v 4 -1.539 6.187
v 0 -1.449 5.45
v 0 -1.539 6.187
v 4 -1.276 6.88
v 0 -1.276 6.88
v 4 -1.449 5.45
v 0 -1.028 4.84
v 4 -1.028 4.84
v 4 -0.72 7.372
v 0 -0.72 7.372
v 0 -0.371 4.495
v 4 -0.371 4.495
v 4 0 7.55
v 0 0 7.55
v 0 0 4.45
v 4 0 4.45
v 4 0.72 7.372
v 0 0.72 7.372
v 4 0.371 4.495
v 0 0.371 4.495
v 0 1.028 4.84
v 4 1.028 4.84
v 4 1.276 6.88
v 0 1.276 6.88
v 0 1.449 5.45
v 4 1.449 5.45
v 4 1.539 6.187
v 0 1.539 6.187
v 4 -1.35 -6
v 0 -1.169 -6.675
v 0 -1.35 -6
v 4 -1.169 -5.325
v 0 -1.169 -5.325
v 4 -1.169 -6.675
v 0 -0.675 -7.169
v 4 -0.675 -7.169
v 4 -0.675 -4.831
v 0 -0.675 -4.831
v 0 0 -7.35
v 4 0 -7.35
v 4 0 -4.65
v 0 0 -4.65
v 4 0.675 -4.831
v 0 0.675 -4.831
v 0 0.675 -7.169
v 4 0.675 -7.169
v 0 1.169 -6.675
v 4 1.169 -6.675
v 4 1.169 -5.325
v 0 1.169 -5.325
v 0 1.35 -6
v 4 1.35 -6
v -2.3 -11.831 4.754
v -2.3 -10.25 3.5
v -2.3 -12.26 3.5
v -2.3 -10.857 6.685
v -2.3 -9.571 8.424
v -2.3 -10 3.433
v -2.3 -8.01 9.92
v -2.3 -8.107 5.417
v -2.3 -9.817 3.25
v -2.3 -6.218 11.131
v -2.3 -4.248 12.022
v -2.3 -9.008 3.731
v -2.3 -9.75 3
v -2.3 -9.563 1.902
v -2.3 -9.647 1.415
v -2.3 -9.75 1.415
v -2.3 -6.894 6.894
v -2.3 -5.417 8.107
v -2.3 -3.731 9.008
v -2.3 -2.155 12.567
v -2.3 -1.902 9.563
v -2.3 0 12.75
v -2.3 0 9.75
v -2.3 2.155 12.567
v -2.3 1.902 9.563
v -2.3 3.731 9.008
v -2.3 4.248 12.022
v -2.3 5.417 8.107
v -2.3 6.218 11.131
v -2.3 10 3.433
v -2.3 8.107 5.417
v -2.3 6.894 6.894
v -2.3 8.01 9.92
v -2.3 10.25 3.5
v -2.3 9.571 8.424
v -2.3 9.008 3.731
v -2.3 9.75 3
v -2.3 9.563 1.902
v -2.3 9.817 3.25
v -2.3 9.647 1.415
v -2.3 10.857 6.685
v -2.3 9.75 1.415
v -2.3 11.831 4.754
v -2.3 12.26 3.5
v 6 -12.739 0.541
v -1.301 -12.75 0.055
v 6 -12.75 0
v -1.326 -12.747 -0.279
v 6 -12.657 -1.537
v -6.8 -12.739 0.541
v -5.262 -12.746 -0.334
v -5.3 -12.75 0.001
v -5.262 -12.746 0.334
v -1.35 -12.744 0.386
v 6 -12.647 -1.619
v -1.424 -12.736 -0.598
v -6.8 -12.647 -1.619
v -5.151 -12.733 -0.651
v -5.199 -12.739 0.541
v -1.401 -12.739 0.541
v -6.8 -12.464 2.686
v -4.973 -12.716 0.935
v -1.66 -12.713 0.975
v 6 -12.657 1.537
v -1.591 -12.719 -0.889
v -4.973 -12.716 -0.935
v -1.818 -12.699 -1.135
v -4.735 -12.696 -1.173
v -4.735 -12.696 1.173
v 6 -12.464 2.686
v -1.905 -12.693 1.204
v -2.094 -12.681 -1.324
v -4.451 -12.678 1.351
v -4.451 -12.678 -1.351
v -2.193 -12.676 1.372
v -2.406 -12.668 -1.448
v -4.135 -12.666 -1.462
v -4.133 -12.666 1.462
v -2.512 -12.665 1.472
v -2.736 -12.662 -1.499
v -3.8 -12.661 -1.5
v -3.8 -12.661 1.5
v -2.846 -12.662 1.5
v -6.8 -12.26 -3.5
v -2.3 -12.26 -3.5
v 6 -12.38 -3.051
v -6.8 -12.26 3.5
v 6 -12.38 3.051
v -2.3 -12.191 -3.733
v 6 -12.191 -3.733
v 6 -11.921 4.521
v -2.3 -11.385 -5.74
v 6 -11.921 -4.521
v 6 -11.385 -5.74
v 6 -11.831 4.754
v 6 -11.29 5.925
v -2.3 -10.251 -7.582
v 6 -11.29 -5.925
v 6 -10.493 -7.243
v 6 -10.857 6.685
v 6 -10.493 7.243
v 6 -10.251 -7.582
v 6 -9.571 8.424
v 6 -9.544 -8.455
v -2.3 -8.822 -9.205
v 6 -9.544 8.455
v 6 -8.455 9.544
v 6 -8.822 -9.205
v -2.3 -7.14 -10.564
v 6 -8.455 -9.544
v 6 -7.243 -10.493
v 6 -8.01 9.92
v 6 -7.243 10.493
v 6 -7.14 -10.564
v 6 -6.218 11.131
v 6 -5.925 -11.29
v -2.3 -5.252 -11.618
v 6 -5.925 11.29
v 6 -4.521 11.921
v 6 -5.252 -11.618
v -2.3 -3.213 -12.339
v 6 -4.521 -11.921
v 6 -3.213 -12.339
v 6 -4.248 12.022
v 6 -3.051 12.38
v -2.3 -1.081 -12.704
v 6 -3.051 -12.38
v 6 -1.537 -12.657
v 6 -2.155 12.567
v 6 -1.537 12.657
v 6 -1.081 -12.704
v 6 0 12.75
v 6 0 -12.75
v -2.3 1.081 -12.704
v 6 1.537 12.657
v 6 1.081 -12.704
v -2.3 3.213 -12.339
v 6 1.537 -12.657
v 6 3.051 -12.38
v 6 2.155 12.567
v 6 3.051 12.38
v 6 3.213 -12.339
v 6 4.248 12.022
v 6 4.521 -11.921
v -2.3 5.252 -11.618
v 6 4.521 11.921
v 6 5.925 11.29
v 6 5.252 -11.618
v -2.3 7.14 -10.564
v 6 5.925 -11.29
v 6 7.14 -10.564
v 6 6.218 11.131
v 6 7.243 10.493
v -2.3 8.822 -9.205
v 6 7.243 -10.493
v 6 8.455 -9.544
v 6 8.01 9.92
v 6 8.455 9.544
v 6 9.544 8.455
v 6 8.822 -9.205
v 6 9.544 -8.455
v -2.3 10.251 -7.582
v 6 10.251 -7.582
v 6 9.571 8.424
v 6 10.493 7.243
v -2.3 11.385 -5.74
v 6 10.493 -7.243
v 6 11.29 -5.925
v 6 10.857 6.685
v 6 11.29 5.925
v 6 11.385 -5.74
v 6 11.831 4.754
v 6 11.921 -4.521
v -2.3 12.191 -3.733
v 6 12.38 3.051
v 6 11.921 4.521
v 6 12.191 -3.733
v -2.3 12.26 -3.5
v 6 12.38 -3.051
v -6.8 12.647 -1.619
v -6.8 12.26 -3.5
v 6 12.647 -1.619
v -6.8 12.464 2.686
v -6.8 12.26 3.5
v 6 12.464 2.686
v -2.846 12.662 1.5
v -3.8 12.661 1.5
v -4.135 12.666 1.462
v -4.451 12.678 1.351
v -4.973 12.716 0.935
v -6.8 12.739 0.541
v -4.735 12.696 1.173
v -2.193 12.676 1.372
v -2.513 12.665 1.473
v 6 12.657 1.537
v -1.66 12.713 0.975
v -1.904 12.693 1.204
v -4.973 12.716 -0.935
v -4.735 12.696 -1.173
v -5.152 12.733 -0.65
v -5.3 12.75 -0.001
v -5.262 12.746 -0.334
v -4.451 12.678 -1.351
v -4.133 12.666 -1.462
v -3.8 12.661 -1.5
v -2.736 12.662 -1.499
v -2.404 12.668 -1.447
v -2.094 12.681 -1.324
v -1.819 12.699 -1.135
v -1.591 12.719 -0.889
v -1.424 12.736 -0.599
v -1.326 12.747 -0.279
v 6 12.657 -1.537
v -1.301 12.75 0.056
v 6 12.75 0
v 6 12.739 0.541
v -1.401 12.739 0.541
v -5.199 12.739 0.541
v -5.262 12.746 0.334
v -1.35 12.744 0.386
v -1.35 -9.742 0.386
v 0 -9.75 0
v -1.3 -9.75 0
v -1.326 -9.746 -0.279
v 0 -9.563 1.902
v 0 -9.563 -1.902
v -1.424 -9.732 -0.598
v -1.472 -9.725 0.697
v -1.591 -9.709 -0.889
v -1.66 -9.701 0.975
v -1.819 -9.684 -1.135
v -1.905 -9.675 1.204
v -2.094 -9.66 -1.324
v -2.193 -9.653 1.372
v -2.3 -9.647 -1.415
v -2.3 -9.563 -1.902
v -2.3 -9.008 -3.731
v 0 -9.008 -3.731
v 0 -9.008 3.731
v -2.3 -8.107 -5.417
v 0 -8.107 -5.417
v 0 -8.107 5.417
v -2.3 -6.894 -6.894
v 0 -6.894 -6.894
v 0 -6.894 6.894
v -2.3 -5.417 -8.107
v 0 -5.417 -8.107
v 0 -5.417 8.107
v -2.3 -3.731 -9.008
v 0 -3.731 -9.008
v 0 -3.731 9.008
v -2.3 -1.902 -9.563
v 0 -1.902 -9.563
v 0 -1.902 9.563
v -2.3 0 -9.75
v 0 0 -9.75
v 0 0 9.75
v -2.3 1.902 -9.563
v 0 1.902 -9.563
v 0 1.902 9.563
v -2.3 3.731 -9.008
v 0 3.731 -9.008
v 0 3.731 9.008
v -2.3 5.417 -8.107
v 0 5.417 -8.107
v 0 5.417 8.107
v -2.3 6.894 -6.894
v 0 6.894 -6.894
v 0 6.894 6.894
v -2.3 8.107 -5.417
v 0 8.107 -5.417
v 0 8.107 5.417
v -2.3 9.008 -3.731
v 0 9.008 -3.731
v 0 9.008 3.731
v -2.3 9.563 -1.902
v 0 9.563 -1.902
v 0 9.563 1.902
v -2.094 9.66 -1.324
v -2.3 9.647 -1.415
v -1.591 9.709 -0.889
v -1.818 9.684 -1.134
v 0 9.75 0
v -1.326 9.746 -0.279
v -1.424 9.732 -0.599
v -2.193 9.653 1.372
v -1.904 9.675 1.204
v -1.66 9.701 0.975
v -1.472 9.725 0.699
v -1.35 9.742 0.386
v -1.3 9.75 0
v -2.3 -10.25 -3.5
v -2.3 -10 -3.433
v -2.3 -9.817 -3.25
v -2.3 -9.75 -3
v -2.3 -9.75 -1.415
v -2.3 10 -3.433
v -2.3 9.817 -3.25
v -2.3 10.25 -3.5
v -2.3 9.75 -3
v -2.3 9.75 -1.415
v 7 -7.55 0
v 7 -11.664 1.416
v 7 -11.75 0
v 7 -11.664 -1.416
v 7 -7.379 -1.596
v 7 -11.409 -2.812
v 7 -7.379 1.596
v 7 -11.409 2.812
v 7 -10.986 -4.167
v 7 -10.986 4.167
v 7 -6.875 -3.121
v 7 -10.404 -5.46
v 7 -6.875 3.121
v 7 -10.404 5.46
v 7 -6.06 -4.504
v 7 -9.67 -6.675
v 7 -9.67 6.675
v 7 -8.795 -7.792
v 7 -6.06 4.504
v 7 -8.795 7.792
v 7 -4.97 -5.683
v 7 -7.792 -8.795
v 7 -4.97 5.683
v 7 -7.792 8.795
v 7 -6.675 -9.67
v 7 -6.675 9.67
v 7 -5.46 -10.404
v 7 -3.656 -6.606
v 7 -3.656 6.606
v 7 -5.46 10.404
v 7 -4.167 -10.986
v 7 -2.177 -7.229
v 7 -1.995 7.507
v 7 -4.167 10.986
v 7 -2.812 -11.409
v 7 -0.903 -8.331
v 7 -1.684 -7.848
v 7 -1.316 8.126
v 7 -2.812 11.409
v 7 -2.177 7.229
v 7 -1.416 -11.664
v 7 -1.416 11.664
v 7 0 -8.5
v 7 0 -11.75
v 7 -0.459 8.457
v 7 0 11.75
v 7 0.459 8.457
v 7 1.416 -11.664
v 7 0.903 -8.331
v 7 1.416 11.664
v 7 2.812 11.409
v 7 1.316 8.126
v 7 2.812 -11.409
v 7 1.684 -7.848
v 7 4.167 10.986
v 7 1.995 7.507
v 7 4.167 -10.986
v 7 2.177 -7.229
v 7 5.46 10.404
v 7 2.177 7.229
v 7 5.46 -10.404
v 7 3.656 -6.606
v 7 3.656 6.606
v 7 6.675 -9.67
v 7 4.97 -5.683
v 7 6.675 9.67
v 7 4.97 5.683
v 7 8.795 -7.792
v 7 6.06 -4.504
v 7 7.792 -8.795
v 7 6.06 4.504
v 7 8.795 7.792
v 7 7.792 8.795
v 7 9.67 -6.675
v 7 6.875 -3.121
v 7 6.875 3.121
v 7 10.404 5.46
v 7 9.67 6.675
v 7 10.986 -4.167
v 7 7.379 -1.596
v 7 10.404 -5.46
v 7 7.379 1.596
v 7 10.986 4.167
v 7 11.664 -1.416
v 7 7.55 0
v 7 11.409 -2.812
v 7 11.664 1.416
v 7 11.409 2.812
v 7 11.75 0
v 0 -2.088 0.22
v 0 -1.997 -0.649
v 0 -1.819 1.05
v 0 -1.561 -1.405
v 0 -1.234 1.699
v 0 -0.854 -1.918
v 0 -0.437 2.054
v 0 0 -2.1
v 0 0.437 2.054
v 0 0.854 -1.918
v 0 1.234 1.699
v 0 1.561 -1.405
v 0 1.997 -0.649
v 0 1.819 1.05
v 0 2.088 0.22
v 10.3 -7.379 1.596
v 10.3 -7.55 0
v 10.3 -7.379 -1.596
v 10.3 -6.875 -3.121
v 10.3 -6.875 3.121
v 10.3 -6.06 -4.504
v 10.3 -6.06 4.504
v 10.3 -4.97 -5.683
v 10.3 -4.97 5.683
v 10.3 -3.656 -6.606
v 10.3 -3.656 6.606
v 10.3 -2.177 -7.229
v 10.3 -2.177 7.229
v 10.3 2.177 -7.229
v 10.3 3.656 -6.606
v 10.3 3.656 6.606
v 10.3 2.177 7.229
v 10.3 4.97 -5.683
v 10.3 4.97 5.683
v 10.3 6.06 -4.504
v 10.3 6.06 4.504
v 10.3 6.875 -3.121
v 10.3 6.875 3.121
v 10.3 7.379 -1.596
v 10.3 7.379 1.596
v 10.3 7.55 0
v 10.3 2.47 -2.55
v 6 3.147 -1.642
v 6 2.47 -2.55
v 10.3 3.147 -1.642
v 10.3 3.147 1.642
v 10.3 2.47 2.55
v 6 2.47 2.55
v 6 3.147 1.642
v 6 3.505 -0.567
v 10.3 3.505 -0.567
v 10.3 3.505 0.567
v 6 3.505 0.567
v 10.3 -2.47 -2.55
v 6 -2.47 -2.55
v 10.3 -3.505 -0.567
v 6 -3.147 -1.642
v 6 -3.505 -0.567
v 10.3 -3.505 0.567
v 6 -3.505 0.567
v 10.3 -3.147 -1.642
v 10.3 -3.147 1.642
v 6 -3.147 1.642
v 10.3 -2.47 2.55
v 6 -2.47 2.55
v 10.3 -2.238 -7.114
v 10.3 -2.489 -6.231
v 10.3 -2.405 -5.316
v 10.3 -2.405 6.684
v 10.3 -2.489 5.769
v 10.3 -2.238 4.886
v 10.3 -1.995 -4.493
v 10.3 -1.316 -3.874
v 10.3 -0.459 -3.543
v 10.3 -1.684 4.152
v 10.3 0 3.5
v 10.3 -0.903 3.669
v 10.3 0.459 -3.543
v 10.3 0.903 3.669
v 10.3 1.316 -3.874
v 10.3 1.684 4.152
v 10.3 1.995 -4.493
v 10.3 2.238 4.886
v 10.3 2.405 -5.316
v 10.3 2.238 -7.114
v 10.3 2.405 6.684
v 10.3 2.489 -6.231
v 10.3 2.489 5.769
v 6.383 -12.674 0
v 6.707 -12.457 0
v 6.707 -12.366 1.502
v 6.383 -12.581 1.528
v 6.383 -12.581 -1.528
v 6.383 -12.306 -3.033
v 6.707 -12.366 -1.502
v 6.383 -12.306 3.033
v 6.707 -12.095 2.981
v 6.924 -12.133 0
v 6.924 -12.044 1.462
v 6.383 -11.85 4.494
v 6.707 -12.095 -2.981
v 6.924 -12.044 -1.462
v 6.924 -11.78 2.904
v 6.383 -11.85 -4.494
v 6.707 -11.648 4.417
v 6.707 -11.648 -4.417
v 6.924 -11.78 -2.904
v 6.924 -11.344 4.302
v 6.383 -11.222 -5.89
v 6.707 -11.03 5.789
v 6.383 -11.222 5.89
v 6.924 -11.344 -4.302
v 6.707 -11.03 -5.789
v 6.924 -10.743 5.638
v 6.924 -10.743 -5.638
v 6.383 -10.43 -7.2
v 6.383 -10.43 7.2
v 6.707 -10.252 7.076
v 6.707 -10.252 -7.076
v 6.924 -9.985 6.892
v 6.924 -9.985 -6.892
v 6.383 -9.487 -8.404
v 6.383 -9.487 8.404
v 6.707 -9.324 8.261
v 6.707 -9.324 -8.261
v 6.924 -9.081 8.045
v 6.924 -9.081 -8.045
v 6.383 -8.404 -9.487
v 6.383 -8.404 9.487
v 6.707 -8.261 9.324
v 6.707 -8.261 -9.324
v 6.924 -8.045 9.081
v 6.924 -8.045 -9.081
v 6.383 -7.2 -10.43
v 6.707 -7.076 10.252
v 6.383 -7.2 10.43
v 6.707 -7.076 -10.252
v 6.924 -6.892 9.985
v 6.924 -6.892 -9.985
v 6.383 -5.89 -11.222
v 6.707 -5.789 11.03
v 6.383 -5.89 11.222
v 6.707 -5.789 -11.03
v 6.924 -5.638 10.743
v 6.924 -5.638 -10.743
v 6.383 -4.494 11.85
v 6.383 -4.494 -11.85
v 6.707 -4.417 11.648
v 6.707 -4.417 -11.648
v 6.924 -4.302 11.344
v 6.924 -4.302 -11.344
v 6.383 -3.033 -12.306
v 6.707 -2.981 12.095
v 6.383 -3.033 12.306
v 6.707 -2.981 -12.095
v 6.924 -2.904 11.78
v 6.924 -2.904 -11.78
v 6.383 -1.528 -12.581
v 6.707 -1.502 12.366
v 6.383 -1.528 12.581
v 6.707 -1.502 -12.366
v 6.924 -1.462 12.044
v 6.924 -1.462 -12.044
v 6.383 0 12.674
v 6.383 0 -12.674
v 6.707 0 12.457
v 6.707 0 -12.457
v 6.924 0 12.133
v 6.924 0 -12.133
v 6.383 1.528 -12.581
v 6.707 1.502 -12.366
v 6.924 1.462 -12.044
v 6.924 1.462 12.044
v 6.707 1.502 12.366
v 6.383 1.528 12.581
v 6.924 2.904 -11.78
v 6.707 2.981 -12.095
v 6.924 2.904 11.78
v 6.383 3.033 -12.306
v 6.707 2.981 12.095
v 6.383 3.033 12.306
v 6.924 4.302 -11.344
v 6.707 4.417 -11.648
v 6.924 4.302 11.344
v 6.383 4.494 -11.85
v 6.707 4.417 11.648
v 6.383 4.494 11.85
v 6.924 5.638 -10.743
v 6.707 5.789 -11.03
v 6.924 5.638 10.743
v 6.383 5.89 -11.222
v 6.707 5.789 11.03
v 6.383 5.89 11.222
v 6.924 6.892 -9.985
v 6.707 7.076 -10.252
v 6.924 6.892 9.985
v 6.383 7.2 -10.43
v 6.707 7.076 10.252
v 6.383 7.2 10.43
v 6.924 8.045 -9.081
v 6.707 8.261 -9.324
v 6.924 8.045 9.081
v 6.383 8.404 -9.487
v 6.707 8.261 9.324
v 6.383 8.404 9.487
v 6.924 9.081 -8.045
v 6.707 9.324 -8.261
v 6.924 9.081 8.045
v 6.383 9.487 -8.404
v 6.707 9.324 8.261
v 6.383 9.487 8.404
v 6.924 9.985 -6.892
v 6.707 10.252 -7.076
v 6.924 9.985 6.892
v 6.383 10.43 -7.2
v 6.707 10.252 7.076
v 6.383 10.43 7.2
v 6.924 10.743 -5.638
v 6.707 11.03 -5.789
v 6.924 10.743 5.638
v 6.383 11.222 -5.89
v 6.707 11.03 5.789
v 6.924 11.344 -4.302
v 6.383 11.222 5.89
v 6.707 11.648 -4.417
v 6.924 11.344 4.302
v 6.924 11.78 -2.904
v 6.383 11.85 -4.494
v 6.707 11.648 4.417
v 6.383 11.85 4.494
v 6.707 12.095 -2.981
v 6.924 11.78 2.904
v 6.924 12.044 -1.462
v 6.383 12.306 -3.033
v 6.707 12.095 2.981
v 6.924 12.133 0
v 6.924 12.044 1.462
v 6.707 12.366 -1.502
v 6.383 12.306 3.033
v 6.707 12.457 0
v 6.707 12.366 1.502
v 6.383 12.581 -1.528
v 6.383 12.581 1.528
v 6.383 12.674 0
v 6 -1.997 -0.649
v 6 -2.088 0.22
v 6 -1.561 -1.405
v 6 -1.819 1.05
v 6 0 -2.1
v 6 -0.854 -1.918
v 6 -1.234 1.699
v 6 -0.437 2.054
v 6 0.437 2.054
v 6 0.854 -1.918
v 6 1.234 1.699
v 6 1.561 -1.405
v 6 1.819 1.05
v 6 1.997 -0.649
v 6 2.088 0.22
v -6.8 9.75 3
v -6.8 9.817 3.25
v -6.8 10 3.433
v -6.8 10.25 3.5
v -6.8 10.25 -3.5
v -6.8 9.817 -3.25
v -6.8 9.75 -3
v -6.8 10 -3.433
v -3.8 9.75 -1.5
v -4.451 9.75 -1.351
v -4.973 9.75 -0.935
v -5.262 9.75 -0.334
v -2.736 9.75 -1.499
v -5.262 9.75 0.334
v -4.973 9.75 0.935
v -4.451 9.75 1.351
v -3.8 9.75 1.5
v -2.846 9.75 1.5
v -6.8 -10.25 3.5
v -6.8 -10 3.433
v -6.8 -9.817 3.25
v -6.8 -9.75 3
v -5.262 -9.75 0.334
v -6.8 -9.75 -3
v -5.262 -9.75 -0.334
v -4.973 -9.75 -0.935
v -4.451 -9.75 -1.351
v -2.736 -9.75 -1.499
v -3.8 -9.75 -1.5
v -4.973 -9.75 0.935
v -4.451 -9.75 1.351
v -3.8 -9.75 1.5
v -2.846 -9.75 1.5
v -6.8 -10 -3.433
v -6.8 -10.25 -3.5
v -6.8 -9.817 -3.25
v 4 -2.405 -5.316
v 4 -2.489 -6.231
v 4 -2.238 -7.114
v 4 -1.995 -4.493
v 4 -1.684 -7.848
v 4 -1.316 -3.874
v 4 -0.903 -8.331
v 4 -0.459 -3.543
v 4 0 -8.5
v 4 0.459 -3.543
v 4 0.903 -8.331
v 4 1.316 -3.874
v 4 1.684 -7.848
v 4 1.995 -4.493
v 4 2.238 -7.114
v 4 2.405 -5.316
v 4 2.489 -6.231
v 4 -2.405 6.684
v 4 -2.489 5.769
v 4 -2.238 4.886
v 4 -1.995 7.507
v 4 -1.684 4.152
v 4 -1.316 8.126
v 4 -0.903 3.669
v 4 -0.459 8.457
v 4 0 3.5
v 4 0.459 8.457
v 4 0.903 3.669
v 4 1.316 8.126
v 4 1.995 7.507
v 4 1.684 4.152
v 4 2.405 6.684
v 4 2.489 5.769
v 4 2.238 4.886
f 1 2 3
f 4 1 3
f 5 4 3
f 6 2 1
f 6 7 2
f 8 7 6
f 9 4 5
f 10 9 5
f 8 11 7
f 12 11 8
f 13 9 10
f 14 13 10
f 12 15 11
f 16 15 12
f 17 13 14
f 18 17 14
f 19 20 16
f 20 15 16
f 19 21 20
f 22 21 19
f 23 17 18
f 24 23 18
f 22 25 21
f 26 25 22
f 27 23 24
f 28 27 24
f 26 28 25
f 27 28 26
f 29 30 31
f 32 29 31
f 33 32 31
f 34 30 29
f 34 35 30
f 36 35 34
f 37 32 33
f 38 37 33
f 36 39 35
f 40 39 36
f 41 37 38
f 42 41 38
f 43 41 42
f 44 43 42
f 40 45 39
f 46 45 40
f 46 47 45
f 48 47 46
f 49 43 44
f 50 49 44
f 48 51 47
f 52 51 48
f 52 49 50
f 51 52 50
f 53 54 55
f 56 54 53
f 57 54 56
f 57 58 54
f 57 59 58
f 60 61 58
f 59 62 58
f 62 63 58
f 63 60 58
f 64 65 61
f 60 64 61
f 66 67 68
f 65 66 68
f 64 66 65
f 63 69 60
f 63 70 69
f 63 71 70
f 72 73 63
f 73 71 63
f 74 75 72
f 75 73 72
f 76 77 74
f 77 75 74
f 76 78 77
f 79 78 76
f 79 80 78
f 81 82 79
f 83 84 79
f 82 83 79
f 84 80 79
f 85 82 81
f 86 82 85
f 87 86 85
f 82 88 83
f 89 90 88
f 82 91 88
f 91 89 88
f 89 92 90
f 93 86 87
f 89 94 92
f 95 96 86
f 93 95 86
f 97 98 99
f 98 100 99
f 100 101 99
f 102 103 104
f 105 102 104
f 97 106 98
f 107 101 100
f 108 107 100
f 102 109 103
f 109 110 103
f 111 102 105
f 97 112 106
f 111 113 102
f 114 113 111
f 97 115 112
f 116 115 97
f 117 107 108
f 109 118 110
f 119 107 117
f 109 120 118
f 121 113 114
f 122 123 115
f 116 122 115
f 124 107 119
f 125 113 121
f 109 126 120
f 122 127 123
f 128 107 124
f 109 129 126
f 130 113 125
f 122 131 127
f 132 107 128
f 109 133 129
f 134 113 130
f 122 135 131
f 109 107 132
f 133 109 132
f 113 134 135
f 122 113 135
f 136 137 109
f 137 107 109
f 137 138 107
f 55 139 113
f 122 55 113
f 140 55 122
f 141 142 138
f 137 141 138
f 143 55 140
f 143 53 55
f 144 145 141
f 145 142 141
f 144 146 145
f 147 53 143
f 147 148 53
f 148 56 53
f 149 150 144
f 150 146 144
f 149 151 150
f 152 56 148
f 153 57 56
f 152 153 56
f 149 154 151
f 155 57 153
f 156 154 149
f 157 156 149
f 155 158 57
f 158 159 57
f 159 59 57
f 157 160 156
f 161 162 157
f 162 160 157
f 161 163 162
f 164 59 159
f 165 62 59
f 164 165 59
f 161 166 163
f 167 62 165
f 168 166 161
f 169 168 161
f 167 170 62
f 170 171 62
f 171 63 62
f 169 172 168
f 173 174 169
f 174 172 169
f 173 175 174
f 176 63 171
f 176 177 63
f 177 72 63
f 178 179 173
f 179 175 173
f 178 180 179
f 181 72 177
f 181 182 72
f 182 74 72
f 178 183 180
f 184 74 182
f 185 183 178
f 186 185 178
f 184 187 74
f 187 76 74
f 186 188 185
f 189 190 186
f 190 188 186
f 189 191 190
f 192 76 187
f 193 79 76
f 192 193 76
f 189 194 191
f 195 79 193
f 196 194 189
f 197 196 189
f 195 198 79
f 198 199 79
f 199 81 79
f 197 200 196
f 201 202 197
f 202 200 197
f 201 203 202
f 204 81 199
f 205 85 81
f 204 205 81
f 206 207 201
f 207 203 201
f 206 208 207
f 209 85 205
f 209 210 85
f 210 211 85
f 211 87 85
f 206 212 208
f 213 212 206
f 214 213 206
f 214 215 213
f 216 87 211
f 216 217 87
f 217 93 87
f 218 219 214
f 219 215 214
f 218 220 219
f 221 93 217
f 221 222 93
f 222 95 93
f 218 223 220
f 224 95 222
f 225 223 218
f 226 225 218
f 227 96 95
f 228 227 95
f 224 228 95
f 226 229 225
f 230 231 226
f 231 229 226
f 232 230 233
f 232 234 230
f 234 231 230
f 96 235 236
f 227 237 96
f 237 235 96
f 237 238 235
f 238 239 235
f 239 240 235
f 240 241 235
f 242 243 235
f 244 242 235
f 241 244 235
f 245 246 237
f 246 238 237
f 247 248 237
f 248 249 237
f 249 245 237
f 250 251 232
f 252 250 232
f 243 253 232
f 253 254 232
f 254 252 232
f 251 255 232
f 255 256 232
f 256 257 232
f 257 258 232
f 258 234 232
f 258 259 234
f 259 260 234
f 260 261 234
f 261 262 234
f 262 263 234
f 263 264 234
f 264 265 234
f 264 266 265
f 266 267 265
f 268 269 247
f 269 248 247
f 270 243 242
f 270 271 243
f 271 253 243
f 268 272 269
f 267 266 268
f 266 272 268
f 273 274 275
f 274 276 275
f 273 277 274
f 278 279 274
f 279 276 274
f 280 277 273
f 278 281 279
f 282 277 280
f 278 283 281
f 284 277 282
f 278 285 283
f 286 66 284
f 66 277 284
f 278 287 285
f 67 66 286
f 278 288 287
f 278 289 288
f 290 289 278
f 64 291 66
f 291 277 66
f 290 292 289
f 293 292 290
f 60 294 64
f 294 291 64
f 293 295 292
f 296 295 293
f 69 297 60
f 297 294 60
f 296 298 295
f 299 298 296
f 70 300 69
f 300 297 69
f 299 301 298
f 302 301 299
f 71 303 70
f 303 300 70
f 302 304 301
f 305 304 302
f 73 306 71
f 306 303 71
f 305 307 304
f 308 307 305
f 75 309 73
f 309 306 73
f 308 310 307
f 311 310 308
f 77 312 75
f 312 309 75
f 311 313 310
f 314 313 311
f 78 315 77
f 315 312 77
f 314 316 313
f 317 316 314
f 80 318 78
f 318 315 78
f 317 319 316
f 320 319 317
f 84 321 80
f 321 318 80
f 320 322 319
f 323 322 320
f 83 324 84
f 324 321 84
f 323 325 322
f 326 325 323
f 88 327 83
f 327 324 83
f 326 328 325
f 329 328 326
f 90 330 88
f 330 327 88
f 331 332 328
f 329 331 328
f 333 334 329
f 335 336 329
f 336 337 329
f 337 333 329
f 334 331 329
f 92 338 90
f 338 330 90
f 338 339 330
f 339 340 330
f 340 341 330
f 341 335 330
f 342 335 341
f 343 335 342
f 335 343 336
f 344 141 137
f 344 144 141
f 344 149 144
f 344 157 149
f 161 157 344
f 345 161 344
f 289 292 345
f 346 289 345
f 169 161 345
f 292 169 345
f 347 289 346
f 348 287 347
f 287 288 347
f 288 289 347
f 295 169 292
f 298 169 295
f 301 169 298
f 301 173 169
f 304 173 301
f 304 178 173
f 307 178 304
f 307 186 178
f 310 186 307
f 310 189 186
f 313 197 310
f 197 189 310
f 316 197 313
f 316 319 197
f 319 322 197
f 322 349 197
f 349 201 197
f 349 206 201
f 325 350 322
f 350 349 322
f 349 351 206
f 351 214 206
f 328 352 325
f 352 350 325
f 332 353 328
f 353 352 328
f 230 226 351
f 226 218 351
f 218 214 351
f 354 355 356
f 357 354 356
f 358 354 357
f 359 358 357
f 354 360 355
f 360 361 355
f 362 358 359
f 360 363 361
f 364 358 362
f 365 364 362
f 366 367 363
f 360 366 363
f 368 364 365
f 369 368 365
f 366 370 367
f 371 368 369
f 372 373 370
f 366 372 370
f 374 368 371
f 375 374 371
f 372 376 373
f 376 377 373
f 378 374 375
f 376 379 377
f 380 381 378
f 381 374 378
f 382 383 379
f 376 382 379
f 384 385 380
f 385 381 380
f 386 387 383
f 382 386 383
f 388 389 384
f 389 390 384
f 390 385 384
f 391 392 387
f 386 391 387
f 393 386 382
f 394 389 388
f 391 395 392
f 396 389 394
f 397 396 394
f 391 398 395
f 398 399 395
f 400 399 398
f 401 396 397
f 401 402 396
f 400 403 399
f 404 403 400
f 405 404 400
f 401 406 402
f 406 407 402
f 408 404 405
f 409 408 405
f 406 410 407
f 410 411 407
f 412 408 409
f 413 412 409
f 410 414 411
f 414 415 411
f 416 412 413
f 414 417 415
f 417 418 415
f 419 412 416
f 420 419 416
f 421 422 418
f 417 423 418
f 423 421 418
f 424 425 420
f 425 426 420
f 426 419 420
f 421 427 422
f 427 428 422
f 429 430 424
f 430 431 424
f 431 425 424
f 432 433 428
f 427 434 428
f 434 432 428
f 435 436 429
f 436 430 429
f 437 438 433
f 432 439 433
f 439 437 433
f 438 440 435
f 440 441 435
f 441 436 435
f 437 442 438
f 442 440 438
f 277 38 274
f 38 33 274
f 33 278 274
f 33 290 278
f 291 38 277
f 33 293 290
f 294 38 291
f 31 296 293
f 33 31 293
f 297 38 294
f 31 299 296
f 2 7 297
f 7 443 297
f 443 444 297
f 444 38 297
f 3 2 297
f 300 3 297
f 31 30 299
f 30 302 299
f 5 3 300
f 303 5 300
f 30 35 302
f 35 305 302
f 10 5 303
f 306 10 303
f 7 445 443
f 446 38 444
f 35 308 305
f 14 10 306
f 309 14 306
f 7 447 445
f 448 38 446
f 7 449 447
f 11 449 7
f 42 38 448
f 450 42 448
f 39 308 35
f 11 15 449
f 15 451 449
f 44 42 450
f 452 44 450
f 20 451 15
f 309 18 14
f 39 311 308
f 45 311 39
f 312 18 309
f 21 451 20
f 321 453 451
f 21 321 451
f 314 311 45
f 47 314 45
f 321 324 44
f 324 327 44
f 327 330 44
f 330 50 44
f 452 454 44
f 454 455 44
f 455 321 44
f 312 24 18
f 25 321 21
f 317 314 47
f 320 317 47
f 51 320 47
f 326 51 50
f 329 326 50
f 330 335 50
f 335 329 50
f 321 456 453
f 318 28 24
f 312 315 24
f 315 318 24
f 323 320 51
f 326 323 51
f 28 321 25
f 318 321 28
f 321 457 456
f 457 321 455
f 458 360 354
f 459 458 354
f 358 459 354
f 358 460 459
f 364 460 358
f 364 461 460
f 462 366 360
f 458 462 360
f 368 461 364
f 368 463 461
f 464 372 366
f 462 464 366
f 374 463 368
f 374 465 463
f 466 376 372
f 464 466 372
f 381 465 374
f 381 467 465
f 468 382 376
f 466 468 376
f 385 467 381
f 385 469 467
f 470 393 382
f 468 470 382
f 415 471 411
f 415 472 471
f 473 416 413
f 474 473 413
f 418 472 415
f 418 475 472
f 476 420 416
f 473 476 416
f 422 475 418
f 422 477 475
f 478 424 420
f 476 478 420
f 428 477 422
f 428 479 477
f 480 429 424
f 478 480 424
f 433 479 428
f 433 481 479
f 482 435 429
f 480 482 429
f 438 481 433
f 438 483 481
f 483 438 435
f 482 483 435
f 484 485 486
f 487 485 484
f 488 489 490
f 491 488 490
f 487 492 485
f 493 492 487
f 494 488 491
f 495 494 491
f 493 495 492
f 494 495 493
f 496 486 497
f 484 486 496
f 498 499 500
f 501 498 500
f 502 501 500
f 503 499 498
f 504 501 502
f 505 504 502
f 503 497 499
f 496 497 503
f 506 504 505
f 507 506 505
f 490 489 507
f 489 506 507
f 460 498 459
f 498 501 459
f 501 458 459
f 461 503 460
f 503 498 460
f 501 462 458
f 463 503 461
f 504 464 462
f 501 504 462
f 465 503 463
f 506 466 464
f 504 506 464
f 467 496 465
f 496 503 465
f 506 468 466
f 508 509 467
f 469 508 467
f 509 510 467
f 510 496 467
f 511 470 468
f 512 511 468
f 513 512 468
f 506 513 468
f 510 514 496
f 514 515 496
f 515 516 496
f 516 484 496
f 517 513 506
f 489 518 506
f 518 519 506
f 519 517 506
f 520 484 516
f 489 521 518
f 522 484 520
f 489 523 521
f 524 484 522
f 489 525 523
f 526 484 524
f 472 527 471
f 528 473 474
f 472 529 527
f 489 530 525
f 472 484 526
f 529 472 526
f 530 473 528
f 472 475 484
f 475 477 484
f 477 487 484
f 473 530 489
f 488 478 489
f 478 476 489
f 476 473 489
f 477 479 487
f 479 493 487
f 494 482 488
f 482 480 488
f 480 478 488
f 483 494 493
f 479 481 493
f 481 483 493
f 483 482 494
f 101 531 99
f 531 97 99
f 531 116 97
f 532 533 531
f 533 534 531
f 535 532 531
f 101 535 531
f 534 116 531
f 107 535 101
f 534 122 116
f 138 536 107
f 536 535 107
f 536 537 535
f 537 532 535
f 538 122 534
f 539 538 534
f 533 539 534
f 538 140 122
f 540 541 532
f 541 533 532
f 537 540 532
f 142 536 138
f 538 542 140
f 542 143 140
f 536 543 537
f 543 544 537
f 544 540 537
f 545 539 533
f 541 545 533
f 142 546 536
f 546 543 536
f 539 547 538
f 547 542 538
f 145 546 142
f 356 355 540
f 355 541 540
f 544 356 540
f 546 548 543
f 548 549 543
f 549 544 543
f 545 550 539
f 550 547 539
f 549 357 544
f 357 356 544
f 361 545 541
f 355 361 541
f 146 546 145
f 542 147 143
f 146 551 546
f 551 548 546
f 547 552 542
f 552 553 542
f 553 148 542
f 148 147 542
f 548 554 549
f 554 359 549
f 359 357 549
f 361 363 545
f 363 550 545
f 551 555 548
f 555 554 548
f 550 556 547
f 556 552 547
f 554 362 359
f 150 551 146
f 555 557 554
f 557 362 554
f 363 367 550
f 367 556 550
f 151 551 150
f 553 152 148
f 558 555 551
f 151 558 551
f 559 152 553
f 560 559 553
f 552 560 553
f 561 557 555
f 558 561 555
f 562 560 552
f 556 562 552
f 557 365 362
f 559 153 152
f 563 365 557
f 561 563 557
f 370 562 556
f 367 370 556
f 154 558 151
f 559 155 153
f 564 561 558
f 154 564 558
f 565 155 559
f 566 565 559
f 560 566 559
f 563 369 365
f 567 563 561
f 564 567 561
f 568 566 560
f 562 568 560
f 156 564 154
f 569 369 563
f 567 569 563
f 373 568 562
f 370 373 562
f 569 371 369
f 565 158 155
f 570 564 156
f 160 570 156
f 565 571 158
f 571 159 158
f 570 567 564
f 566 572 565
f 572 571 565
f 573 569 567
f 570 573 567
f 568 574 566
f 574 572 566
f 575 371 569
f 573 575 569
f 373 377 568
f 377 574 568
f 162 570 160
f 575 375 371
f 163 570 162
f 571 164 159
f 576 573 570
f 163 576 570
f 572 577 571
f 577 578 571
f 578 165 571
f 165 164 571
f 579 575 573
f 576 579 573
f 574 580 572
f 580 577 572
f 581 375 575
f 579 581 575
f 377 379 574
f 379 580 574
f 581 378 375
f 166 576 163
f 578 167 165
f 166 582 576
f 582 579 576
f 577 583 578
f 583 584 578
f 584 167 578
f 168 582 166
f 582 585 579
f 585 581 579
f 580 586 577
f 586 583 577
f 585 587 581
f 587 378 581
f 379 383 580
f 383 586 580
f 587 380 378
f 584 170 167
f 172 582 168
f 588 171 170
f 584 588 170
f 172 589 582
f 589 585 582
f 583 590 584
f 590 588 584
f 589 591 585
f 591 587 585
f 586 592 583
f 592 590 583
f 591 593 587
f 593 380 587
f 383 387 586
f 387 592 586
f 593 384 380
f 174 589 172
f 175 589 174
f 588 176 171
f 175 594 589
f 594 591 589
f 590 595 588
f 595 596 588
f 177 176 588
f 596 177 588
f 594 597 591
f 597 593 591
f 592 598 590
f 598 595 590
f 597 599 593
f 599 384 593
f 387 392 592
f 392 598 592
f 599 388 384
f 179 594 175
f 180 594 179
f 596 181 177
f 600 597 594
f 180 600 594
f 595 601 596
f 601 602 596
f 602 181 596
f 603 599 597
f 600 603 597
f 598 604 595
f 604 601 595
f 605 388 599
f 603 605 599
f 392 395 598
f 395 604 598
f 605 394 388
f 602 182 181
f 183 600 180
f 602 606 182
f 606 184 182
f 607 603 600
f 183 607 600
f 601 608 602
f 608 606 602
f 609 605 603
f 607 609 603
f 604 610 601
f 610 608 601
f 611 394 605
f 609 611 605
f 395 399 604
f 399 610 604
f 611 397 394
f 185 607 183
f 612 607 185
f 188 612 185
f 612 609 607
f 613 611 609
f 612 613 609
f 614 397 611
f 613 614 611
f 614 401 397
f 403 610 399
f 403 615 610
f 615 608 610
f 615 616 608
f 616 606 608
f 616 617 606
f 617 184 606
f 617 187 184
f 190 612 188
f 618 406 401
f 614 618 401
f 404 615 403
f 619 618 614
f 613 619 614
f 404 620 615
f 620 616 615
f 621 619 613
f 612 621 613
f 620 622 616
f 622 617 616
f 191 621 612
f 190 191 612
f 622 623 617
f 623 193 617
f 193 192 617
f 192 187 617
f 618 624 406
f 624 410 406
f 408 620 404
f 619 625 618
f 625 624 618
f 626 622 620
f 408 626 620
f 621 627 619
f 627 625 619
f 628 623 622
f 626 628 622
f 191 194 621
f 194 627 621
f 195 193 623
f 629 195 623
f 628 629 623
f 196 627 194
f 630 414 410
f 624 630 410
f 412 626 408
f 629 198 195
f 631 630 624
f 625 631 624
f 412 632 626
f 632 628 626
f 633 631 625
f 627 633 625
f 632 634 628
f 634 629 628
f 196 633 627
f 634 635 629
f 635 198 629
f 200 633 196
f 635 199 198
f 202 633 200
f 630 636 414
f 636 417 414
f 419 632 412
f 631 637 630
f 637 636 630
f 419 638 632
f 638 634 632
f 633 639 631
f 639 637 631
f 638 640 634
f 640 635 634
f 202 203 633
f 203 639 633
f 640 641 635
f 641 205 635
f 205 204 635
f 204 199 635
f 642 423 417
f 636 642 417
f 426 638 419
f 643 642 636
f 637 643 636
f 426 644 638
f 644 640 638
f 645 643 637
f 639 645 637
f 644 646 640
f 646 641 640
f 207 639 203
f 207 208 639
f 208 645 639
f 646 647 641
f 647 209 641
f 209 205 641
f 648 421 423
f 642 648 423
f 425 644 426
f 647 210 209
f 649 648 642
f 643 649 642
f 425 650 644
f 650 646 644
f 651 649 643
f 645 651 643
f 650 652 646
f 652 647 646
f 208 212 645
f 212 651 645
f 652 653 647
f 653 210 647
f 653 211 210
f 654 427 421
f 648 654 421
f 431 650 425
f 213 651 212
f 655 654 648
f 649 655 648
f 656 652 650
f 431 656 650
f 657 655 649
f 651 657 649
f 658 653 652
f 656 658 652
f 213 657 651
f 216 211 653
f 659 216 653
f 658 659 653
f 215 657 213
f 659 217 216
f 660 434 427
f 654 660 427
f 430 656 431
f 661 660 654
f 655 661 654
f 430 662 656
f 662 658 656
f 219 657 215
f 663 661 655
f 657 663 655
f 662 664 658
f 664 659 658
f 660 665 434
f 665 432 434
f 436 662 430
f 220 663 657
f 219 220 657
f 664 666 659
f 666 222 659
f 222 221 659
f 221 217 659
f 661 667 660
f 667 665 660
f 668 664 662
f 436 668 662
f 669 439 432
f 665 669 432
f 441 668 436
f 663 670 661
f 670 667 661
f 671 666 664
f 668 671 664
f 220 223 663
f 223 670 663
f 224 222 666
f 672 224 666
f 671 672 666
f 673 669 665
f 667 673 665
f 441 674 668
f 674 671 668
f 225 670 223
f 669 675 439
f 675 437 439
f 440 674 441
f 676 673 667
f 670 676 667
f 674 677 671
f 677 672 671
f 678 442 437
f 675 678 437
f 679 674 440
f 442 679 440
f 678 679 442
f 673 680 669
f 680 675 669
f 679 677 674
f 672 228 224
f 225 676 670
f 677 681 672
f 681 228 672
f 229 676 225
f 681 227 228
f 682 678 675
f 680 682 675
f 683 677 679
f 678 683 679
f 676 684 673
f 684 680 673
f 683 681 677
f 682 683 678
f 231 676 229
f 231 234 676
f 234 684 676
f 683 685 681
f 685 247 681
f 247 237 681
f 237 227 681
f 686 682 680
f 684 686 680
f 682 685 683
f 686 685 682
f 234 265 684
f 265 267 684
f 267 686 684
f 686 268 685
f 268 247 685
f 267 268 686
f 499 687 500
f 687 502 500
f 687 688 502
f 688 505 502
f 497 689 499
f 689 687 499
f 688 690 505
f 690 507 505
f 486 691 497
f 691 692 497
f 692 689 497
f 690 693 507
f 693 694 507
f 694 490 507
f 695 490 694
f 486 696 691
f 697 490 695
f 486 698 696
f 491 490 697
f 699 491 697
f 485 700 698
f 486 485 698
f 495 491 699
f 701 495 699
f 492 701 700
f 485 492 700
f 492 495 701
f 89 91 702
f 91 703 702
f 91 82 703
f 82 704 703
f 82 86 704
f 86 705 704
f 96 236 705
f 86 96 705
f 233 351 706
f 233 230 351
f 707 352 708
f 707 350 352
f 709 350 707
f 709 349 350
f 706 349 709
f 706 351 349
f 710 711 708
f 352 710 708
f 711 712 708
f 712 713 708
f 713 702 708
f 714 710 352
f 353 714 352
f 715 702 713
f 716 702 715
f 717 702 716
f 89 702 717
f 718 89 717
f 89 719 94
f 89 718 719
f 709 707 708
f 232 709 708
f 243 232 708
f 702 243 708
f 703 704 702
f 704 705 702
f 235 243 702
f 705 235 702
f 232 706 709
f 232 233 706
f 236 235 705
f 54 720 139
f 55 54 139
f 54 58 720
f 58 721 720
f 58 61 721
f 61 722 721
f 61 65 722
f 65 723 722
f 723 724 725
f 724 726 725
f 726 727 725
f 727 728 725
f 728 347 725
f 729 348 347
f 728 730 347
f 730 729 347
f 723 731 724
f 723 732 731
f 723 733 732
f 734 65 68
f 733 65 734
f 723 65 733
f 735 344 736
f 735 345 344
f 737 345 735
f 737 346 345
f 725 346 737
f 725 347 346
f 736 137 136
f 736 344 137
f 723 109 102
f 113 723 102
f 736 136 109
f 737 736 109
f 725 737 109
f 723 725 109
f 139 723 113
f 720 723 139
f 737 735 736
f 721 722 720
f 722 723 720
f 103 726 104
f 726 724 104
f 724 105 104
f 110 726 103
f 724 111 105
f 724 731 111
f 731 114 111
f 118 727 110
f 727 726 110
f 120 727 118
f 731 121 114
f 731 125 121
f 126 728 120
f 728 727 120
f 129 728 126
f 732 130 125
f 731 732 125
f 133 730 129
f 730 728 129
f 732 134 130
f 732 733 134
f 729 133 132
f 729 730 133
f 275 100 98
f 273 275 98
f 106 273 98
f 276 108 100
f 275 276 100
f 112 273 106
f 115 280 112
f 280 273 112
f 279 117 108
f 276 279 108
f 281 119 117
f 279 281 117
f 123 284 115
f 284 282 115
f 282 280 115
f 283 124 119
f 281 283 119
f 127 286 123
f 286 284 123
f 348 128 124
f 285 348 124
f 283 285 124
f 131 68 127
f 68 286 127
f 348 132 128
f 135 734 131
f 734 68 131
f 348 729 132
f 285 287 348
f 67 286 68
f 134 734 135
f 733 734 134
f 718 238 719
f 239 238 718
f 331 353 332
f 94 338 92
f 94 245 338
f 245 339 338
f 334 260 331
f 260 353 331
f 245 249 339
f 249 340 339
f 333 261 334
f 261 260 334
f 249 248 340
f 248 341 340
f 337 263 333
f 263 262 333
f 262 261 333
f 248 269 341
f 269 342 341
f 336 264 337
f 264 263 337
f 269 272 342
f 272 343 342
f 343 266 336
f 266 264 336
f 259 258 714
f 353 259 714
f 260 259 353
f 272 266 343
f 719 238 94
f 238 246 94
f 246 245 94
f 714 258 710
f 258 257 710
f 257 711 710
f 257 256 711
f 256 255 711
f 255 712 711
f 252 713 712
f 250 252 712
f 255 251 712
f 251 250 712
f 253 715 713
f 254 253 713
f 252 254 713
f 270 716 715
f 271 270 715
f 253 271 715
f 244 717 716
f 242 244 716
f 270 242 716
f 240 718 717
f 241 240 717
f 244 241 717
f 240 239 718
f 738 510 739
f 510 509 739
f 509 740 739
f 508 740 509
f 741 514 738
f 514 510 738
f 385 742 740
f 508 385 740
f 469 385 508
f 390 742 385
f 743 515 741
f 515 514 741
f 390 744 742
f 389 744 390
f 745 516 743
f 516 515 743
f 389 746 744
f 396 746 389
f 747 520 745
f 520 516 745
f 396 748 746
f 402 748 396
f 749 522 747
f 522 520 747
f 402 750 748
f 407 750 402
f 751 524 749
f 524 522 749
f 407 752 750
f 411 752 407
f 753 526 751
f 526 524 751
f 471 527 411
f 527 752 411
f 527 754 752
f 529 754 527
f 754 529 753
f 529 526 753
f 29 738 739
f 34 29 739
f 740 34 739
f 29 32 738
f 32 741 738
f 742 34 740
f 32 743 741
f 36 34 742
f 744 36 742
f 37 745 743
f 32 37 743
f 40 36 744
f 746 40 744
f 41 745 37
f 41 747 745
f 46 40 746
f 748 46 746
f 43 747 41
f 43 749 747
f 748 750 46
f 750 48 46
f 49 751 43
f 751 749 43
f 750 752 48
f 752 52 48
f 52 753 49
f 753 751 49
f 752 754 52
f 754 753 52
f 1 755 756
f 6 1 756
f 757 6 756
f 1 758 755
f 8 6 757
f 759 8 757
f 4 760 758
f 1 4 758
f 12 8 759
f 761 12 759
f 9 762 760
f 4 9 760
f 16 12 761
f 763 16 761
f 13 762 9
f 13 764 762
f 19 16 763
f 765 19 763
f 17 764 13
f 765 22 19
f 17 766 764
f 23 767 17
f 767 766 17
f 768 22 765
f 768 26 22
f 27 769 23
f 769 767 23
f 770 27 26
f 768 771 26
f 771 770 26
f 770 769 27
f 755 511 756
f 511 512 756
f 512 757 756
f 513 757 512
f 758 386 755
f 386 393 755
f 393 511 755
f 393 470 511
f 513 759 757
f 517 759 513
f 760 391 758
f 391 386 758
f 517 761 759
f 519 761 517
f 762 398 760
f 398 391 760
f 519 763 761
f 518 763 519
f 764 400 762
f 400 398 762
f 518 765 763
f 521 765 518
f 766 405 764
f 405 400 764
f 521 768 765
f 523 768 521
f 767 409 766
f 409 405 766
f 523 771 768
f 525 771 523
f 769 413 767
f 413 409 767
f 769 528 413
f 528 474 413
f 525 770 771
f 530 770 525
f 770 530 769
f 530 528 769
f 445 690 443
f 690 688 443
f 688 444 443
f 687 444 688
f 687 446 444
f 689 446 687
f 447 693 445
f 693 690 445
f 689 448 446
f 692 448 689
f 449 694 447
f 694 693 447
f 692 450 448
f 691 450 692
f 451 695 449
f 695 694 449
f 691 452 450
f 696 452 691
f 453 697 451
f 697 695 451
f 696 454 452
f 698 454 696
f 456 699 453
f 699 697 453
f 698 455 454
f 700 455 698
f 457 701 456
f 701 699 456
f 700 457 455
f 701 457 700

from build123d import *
from build123d.topology import SkipClean

# Parameters (mm, degrees)
SKETCH_1_R               = 12.75
EXTRUDE_1_DEPTH          = 7
EXTRUDE_START            = -2.3
SKETCH_1_3_R             = 12.75
SKETCH_1_3_R_2           = 9.75
EXTRUDE_2_DEPTH          = 2.3
EXTRUDE_3_DEPTH          = 3.3
FILLET_1_R               = 1
EXTRUDE_4_DEPTH          = 3.3
CUT_EXTRUDE_1_REACH      = 22.288
SKETCH_6_R               = 1.3500000000000005
SKETCH_6_R_2             = 1.5499999999999994
CUT_EXTRUDE_START        = -1
CUT_EXTRUDE_2_DEPTH      = 1
EXTRUDE_START_2          = 4.5
EXTRUDE_5_DEPTH          = 4.5
CUT_EXTRUDE_3_DEPTH      = 3
CUT_EXTRUDE_3_DEPTH_BACK = 25
SKETCH_17_R              = 2.5
SKETCH_17_R_2            = 2.5000000000000004
CUT_EXTRUDE_4_DEPTH      = 6.3
SKETCH_18_R              = 2.1
CUT_EXTRUDE_5_DEPTH      = 19.000000000000004


with BuildPart() as part:
    # 草图1 → 凸台-拉伸1 (new body)
    with BuildSketch(Plane(origin=(0, 0, 0), x_dir=(0, 0, -1), z_dir=(1, 0, 0))):
        Circle(SKETCH_1_R)
    extrude(amount=EXTRUDE_1_DEPTH)

    # 草图1<3> → 凸台-拉伸2 (add)
    with BuildSketch(Plane(origin=(0, 0, 0), x_dir=(0, 0, -1), z_dir=(1, 0, 0)).offset(EXTRUDE_START)):
        Circle(SKETCH_1_3_R)
        Circle(SKETCH_1_3_R_2, mode=Mode.SUBTRACT)
    extrude(amount=EXTRUDE_2_DEPTH)

    # 草图4 → 凸台-拉伸3 (add)
    with BuildSketch(Plane(origin=(7, 0, 0), x_dir=(0, 0, -1), z_dir=(1, 0, 0))):
        with BuildLine():
            Line((7.293731545630563, -1.9503794862215074), (5.5903528728314456, -1.4948876985254207))
            ThreePointArc((5.590352872831452, -1.4948876985253963), (4.450095710648993, -0.01722480337626947), (5.557231396787749, 1.4854144081735148))
            ThreePointArc((5.557231396787749, 1.4854144081735148), (5.599745988830406, 1.4974300406171406), (5.642585759719926, 1.508229114174971))
            Line((5.642585759719926, 1.5082291141749726), (7.293933423650666, 1.949624376989515))
            ThreePointArc((7.293933423650662, 1.949624376989514), (4.6e-16, 7.550000000000002), (-7.293933423650662, 1.949624376989515))
            Line((-7.293933423650666, 1.949624376989515), (-5.642585759719924, 1.5082291141749722))
            ThreePointArc((-5.642585759719924, 1.5082291141749706), (-5.599745988830406, 1.4974300406171406), (-5.557231396787749, 1.4854144081735148))
            ThreePointArc((-5.557231396787749, 1.4854144081735148), (-4.757262832498563, 0.9263392102844973), (-4.449999999999999, 0))
            ThreePointArc((-4.449999999999999, -3.8e-16), (-4.767633770522892, -0.9400922701758461), (-5.590352872831452, -1.4948876985253963))
            Line((-5.5903528728314456, -1.4948876985254207), (-7.293731545630563, -1.9503794862215074))
            ThreePointArc((-7.2937315456305605, -1.950379486221506), (-1.39e-15, -7.550000000000002), (7.2937315456305605, -1.9503794862215056))
        make_face()
        with BuildLine():
            ThreePointArc((-0.9205316546017519, -3.4285742624123157), (-1.7750000000000141, -3.074390183434749), (-2.5089665827097076, -2.5114909290789753))
            ThreePointArc((-2.5089665827097076, -2.5114909290789753), (-2.5295691102475106, -2.490738869589025), (-2.55, -2.4698178070456938))
            Line((-2.55, -2.4698178070456938), (-2.55, 0))
            Line((-2.55, 0), (-2.55, 2.4698178070456938))
            ThreePointArc((-2.55, 2.469817807045694), (2.2e-16, 3.5499999999999994), (2.55, 2.4698178070456938))
            Line((2.55, 2.4698178070456938), (2.55, -1.2e-16))
            Line((2.55, -1.2e-16), (2.55, -2.4698178070456938))
            ThreePointArc((2.549999999999999, -2.4698178070456946), (0.9453016753082151, -3.4218276903811913), (-0.9205316546017519, -3.4285742624123157))
        make_face(mode=Mode.SUBTRACT)
    extrude(amount=EXTRUDE_3_DEPTH)

    # 圆角1
    fillet_1_edges = [part.edges().sort_by_distance(p)[0] for p in [
        (7, 1.56e-15, 12.75),
    ]]
    fillet(fillet_1_edges, radius=FILLET_1_R)

    # 草图5 → 凸台-拉伸4 (add)
    with BuildSketch(Plane(origin=(7, 0, 0), x_dir=(0, 0, -1), z_dir=(1, 0, 0))):
        with BuildLine():
            ThreePointArc((5.65345654698472, -1.3047634403110198), (4.6499999999999995, 1.7e-16), (5.65345654698472, 1.3047634403110198))
            Line((5.65345654698472, 1.3047634403110195), (7.3500000000000005, 1.7553631492193538))
            Line((7.3500000000000005, 1.7553631492193538), (7.293933423650666, 1.9496243769895145))
            Line((7.293933423650666, 1.9496243769895145), (5.642585759719882, 1.5082291141749606))
            ThreePointArc((5.642585759719882, 1.5082291141749606), (4.4500975021885605, 0.01738526036219645), (5.60884432582712, -1.499832403491257))
            Line((5.60884432582712, -1.499832403491257), (7.293731545630563, -1.950379486221502))
            Line((7.293731545630563, -1.950379486221502), (7.3500000000000005, -1.7595376594411802))
            Line((7.3500000000000005, -1.7595376594411802), (5.65345654698472, -1.3047634403110195))
        make_face()
    extrude(amount=EXTRUDE_4_DEPTH)

    # 草图6 → 切除-拉伸1 (cut, up to next)
    with BuildSketch(Plane(origin=(7, 0, 0), x_dir=(0, 0, -1), z_dir=(1, 0, 0)), mode=Mode.PRIVATE) as cut_extrude_1_sk1:
        with Locations(Location((6, 0, 0), (0, 0, 255.125726416))):
            Circle(SKETCH_6_R)
    cut_extrude_1_tool1 = extrude(cut_extrude_1_sk1.sketch, amount=-CUT_EXTRUDE_1_REACH, mode=Mode.PRIVATE) & part.part
    # 草图6 → 切除-拉伸1 (cut, up to next)
    with BuildSketch(Plane(origin=(7, 0, 0), x_dir=(0, 0, -1), z_dir=(1, 0, 0)), mode=Mode.PRIVATE) as cut_extrude_1_sk2:
        with Locations(Location((-6, -7.3e-16, 0), (0, 0, 76.668199875))):
            Circle(SKETCH_6_R_2)
    cut_extrude_1_tool2 = extrude(cut_extrude_1_sk2.sketch, amount=-CUT_EXTRUDE_1_REACH, mode=Mode.PRIVATE) & part.part
    add(cut_extrude_1_tool1.solids().sort_by_distance((7, 0, -6))[0], mode=Mode.SUBTRACT)
    add(cut_extrude_1_tool2.solids().sort_by_distance((7, 0, 6))[0], mode=Mode.SUBTRACT)

    # 草图7 → 切除-拉伸2 (cut)
    with BuildSketch(Plane(origin=(7, 0, 0), x_dir=(0, 0, -1), z_dir=(1, 0, 0)).offset(CUT_EXTRUDE_START)):
        with BuildLine():
            Line((2.55, -2.4698178070456938), (2.55, 2.4698178070456938))
            ThreePointArc((2.55, 2.4698178070456938), (2.2e-16, 3.55), (-2.55, 2.4698178070456938))
            Line((-2.55, 2.4698178070456938), (-2.55, -2.4698178070456938))
            ThreePointArc((-2.55, -2.4698178070456938), (2.2e-16, -3.55), (2.55, -2.4698178070456938))
        make_face()
    extrude(amount=CUT_EXTRUDE_2_DEPTH, mode=Mode.SUBTRACT)

    # 草图9 → 凸台-拉伸5 (add)
    with SkipClean():  # the faces are left unmerged after this step: merging them gives an invalid solid
        with BuildSketch(Plane.ZY.offset(2.3).offset(EXTRUDE_START_2)):
            with BuildLine():
                ThreePointArc((-3.4999999999999996, 10.25), (-3.3535533905932735, 9.896446609406727), (-3, 9.75))
                Line((-3, 9.75), (3, 9.75))
                ThreePointArc((3, 9.75), (3.3535533905932735, 9.896446609406727), (3.5000000000000004, 10.25))
                Line((3.5, 10.25), (3.5, 12.260199835239227))
                ThreePointArc((3.5000000000000004, 12.260199835239227), (1e-15, 12.75), (-3.5, 12.260199835239227))
                Line((-3.5, 12.260199835239227), (-3.5, 10.25))
            make_face()
            with BuildLine():
                Line((-3.5, -10.25), (-3.5, -12.260199835239227))
                ThreePointArc((-3.5, -12.260199835239227), (1e-15, -12.75), (3.5000000000000004, -12.260199835239227))
                Line((3.5, -12.260199835239227), (3.5, -10.25))
                ThreePointArc((3.5000000000000004, -10.25), (3.3535533905932735, -9.896446609406727), (3, -9.75))
                Line((3, -9.75), (-3, -9.75))
                ThreePointArc((-3, -9.75), (-3.3535533905932735, -9.896446609406727), (-3.4999999999999996, -10.25))
            make_face()
        extrude(amount=-EXTRUDE_5_DEPTH)

    # 草图16 → 切除-拉伸3 (cut, two sides: drawn at the far end of the back side and taken through both)
    with BuildSketch(Plane(origin=(0, 9.75, 0), x_dir=(1, 0, 0), z_dir=(0, 1, 0)).offset(-CUT_EXTRUDE_3_DEPTH_BACK)):
        with BuildLine():
            Line((-3.797155055625174, 1.499995743144704), (-3.8000000000000003, 1.499998441052766))
            ThreePointArc((-3.8000000000000003, 1.499998441052766), (-5.299998441052766, 3.3e-16), (-3.8000000000000007, -1.4999984410527665))
            Line((-3.8000000000000003, -1.4999984410527663), (-3.7988775259417356, -1.4999980210696007))
            Line((-3.7988775259417356, -1.4999980210696007), (-2.8462661595831507, -1.4996415934672602))
            ThreePointArc((-2.8462661595831507, -1.4996415934672602), (-1.300658265078132, -0.05513463794275678), (-2.735998812247351, 1.4989894310320704))
            Line((-2.735998812247351, 1.49898943103207), (-2.8611580419850906, 1.4991081216110296))
            Line((-2.8611580419850906, 1.4991081216110296), (-3.797155055625174, 1.499995743144704))
        make_face()
    extrude(amount=CUT_EXTRUDE_3_DEPTH + CUT_EXTRUDE_3_DEPTH_BACK, mode=Mode.SUBTRACT)

    # 草图17 → 切除-拉伸4 (cut)
    with SkipClean():  # the faces are left unmerged after this step: merging them gives an invalid solid
        with BuildSketch(Plane(origin=(10.3, 0, 0), x_dir=(0, 0, -1), z_dir=(1, 0, 0))):
            with Locations((-6, 0)):
                Circle(SKETCH_17_R)
            with Locations((6, 0)):
                Circle(SKETCH_17_R_2)
        extrude(amount=-CUT_EXTRUDE_4_DEPTH, mode=Mode.SUBTRACT)

    # 草图18 → 切除-拉伸5 (cut)
    with SkipClean():  # the faces are left unmerged after this step: merging them gives an invalid solid
        with BuildSketch(Plane(origin=(10.3, 0, 0), x_dir=(0, 0, -1), z_dir=(1, 0, 0))):
            Circle(SKETCH_18_R)
        extrude(amount=-CUT_EXTRUDE_5_DEPTH, mode=Mode.SUBTRACT)


solid = part.part
